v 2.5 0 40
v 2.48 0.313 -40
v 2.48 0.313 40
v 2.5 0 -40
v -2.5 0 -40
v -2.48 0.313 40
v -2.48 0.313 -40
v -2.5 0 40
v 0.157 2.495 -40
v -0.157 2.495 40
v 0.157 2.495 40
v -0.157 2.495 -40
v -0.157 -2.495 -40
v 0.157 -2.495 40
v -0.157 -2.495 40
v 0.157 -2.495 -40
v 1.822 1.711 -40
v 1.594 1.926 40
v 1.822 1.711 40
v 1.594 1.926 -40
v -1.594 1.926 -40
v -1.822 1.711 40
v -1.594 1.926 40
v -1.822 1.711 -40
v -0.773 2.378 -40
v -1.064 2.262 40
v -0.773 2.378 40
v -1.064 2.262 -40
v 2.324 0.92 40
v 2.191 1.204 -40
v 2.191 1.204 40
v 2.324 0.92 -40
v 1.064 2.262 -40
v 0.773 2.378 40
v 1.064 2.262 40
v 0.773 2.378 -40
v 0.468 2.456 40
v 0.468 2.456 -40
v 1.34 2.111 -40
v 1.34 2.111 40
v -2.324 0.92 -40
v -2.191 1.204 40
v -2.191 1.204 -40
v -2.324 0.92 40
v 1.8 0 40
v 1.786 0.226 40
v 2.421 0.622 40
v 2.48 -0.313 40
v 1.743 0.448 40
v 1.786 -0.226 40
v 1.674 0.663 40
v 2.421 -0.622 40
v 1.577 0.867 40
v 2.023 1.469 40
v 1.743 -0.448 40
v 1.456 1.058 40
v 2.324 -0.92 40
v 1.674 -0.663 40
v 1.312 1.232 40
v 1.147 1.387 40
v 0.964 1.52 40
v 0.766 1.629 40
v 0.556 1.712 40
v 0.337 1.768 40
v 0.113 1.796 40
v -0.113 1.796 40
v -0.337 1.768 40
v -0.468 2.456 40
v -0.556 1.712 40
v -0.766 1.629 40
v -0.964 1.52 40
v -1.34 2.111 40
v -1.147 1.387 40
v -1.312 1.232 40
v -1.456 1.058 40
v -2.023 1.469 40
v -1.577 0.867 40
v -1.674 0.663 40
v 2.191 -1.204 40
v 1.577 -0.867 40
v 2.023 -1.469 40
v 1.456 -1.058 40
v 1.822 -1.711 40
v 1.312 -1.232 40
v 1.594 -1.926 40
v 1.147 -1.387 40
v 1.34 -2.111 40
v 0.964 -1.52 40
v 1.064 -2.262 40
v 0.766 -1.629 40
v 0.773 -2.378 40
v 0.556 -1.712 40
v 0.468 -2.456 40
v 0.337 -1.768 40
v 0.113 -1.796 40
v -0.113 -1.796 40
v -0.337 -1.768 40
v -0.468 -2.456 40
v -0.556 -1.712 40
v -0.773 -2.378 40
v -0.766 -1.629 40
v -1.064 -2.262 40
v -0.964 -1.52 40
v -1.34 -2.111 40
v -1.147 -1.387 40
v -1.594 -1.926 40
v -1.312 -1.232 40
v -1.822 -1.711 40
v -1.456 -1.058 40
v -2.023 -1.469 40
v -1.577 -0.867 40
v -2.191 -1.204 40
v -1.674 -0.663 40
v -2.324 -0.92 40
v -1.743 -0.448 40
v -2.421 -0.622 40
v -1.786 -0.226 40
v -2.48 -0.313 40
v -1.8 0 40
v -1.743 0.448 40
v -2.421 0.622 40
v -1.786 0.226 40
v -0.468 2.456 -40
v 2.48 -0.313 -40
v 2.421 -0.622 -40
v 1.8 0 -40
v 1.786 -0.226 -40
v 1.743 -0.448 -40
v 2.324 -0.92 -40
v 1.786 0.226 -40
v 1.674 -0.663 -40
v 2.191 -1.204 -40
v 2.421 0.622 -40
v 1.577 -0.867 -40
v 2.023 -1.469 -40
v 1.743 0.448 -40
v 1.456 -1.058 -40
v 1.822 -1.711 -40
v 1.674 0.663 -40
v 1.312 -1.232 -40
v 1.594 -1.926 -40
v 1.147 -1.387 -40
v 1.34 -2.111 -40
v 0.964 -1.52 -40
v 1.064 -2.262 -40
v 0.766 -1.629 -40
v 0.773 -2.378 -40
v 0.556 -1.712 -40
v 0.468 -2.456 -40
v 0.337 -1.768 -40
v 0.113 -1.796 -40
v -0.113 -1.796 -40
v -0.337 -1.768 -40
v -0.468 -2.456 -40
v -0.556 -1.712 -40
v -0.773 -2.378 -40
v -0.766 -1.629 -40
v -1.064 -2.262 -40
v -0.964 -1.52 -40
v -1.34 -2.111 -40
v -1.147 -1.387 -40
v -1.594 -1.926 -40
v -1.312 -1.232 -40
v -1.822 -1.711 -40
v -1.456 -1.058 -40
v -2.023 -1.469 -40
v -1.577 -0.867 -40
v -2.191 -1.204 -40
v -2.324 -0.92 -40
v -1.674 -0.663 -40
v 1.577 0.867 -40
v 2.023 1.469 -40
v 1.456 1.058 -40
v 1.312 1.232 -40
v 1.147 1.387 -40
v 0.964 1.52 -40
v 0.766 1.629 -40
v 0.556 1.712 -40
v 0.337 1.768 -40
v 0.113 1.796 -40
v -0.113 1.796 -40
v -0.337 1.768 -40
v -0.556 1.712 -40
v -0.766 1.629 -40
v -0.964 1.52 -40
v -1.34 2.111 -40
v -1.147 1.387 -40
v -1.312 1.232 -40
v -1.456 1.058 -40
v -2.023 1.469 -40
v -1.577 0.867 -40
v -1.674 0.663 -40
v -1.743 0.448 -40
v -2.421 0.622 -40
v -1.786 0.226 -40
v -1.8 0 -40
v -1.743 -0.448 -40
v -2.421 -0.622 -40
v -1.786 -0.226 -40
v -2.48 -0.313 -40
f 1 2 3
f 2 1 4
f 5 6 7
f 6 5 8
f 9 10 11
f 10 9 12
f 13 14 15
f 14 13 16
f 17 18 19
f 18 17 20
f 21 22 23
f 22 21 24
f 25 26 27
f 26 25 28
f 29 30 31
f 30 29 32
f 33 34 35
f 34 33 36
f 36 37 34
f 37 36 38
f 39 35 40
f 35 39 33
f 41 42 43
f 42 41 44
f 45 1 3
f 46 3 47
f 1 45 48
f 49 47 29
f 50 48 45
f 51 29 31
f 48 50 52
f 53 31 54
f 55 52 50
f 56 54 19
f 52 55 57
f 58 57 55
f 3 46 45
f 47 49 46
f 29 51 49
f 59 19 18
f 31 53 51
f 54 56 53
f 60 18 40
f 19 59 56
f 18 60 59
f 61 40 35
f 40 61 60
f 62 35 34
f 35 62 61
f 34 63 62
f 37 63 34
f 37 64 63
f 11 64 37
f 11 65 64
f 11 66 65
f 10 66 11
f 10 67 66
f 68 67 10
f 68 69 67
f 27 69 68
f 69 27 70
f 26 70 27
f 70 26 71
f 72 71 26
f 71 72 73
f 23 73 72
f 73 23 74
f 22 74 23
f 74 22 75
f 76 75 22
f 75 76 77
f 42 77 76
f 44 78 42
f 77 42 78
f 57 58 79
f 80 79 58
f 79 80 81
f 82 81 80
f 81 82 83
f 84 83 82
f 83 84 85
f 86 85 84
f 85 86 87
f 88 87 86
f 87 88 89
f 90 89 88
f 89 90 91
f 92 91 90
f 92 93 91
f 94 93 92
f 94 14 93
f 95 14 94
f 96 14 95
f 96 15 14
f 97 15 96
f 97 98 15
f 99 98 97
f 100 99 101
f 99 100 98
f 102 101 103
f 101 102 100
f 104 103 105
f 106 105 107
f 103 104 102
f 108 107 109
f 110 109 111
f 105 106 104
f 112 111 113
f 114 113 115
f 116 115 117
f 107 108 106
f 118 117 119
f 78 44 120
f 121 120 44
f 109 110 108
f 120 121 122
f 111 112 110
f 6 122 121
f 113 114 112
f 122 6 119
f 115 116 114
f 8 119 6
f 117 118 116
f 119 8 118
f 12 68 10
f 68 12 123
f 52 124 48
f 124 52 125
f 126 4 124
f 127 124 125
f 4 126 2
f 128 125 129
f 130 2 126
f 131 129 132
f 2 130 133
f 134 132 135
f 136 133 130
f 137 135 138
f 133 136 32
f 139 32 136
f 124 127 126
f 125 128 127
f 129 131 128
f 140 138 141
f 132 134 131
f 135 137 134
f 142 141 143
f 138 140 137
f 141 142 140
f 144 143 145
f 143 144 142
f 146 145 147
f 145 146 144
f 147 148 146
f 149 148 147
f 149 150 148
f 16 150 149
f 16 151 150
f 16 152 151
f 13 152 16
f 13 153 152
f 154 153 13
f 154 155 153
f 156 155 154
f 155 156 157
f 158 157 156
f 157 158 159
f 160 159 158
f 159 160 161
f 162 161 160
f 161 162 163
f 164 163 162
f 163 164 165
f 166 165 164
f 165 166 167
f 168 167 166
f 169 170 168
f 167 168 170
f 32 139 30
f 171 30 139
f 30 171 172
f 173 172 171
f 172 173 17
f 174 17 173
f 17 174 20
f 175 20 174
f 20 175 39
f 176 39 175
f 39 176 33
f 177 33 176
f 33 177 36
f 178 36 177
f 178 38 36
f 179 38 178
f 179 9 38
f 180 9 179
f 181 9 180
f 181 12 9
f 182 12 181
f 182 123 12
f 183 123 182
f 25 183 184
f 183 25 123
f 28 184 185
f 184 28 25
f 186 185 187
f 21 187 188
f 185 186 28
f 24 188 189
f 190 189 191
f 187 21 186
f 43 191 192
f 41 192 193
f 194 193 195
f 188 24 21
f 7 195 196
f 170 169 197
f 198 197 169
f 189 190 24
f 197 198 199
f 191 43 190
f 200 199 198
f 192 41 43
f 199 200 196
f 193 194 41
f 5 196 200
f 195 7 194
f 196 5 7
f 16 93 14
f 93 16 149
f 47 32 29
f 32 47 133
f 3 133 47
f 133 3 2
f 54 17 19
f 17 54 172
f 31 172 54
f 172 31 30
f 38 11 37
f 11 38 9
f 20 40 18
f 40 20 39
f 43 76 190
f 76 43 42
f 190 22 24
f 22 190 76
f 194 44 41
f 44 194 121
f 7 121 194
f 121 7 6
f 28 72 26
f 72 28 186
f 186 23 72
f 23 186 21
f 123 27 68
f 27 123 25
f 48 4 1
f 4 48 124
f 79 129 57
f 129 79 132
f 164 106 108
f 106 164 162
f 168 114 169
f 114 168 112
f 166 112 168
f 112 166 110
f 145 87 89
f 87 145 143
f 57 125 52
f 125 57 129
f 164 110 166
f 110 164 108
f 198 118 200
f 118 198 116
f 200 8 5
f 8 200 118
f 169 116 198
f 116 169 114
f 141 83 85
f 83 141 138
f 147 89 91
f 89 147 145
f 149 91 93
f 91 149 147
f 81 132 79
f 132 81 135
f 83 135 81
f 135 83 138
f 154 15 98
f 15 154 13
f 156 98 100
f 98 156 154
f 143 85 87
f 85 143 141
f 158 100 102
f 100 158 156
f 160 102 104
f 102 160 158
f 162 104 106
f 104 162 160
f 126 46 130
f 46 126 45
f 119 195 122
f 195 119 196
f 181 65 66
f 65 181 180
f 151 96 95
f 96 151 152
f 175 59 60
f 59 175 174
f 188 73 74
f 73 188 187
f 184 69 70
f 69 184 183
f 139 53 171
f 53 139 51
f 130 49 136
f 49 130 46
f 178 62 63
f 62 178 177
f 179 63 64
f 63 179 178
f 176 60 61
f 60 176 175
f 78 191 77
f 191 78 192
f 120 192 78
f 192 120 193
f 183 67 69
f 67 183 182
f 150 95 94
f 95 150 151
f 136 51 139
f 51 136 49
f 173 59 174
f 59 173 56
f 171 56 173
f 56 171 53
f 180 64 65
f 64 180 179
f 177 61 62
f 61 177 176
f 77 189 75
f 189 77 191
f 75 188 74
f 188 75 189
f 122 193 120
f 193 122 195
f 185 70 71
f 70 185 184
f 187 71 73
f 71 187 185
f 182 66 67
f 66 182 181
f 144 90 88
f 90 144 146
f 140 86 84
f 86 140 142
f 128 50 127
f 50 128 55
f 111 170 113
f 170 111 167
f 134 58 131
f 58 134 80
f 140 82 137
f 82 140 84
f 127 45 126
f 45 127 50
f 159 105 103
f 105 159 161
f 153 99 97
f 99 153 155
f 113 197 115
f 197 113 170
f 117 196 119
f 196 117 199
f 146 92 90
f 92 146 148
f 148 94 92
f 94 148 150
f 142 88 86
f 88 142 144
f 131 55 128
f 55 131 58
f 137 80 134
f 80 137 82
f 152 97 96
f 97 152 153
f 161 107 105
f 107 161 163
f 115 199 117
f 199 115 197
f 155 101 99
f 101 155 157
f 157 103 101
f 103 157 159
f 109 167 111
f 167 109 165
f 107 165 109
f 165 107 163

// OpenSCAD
$fn = 50;


difference() {
	union() {
		translate(v = [0, 0, -40.0000000000]) {
			cylinder(h = 80, r = 2.5000000000);
		}
	}
	union() {
		translate(v = [0, 0, -100.0000000000]) {
			cylinder(h = 200, r = 1.8000000000);
		}
	}
}
